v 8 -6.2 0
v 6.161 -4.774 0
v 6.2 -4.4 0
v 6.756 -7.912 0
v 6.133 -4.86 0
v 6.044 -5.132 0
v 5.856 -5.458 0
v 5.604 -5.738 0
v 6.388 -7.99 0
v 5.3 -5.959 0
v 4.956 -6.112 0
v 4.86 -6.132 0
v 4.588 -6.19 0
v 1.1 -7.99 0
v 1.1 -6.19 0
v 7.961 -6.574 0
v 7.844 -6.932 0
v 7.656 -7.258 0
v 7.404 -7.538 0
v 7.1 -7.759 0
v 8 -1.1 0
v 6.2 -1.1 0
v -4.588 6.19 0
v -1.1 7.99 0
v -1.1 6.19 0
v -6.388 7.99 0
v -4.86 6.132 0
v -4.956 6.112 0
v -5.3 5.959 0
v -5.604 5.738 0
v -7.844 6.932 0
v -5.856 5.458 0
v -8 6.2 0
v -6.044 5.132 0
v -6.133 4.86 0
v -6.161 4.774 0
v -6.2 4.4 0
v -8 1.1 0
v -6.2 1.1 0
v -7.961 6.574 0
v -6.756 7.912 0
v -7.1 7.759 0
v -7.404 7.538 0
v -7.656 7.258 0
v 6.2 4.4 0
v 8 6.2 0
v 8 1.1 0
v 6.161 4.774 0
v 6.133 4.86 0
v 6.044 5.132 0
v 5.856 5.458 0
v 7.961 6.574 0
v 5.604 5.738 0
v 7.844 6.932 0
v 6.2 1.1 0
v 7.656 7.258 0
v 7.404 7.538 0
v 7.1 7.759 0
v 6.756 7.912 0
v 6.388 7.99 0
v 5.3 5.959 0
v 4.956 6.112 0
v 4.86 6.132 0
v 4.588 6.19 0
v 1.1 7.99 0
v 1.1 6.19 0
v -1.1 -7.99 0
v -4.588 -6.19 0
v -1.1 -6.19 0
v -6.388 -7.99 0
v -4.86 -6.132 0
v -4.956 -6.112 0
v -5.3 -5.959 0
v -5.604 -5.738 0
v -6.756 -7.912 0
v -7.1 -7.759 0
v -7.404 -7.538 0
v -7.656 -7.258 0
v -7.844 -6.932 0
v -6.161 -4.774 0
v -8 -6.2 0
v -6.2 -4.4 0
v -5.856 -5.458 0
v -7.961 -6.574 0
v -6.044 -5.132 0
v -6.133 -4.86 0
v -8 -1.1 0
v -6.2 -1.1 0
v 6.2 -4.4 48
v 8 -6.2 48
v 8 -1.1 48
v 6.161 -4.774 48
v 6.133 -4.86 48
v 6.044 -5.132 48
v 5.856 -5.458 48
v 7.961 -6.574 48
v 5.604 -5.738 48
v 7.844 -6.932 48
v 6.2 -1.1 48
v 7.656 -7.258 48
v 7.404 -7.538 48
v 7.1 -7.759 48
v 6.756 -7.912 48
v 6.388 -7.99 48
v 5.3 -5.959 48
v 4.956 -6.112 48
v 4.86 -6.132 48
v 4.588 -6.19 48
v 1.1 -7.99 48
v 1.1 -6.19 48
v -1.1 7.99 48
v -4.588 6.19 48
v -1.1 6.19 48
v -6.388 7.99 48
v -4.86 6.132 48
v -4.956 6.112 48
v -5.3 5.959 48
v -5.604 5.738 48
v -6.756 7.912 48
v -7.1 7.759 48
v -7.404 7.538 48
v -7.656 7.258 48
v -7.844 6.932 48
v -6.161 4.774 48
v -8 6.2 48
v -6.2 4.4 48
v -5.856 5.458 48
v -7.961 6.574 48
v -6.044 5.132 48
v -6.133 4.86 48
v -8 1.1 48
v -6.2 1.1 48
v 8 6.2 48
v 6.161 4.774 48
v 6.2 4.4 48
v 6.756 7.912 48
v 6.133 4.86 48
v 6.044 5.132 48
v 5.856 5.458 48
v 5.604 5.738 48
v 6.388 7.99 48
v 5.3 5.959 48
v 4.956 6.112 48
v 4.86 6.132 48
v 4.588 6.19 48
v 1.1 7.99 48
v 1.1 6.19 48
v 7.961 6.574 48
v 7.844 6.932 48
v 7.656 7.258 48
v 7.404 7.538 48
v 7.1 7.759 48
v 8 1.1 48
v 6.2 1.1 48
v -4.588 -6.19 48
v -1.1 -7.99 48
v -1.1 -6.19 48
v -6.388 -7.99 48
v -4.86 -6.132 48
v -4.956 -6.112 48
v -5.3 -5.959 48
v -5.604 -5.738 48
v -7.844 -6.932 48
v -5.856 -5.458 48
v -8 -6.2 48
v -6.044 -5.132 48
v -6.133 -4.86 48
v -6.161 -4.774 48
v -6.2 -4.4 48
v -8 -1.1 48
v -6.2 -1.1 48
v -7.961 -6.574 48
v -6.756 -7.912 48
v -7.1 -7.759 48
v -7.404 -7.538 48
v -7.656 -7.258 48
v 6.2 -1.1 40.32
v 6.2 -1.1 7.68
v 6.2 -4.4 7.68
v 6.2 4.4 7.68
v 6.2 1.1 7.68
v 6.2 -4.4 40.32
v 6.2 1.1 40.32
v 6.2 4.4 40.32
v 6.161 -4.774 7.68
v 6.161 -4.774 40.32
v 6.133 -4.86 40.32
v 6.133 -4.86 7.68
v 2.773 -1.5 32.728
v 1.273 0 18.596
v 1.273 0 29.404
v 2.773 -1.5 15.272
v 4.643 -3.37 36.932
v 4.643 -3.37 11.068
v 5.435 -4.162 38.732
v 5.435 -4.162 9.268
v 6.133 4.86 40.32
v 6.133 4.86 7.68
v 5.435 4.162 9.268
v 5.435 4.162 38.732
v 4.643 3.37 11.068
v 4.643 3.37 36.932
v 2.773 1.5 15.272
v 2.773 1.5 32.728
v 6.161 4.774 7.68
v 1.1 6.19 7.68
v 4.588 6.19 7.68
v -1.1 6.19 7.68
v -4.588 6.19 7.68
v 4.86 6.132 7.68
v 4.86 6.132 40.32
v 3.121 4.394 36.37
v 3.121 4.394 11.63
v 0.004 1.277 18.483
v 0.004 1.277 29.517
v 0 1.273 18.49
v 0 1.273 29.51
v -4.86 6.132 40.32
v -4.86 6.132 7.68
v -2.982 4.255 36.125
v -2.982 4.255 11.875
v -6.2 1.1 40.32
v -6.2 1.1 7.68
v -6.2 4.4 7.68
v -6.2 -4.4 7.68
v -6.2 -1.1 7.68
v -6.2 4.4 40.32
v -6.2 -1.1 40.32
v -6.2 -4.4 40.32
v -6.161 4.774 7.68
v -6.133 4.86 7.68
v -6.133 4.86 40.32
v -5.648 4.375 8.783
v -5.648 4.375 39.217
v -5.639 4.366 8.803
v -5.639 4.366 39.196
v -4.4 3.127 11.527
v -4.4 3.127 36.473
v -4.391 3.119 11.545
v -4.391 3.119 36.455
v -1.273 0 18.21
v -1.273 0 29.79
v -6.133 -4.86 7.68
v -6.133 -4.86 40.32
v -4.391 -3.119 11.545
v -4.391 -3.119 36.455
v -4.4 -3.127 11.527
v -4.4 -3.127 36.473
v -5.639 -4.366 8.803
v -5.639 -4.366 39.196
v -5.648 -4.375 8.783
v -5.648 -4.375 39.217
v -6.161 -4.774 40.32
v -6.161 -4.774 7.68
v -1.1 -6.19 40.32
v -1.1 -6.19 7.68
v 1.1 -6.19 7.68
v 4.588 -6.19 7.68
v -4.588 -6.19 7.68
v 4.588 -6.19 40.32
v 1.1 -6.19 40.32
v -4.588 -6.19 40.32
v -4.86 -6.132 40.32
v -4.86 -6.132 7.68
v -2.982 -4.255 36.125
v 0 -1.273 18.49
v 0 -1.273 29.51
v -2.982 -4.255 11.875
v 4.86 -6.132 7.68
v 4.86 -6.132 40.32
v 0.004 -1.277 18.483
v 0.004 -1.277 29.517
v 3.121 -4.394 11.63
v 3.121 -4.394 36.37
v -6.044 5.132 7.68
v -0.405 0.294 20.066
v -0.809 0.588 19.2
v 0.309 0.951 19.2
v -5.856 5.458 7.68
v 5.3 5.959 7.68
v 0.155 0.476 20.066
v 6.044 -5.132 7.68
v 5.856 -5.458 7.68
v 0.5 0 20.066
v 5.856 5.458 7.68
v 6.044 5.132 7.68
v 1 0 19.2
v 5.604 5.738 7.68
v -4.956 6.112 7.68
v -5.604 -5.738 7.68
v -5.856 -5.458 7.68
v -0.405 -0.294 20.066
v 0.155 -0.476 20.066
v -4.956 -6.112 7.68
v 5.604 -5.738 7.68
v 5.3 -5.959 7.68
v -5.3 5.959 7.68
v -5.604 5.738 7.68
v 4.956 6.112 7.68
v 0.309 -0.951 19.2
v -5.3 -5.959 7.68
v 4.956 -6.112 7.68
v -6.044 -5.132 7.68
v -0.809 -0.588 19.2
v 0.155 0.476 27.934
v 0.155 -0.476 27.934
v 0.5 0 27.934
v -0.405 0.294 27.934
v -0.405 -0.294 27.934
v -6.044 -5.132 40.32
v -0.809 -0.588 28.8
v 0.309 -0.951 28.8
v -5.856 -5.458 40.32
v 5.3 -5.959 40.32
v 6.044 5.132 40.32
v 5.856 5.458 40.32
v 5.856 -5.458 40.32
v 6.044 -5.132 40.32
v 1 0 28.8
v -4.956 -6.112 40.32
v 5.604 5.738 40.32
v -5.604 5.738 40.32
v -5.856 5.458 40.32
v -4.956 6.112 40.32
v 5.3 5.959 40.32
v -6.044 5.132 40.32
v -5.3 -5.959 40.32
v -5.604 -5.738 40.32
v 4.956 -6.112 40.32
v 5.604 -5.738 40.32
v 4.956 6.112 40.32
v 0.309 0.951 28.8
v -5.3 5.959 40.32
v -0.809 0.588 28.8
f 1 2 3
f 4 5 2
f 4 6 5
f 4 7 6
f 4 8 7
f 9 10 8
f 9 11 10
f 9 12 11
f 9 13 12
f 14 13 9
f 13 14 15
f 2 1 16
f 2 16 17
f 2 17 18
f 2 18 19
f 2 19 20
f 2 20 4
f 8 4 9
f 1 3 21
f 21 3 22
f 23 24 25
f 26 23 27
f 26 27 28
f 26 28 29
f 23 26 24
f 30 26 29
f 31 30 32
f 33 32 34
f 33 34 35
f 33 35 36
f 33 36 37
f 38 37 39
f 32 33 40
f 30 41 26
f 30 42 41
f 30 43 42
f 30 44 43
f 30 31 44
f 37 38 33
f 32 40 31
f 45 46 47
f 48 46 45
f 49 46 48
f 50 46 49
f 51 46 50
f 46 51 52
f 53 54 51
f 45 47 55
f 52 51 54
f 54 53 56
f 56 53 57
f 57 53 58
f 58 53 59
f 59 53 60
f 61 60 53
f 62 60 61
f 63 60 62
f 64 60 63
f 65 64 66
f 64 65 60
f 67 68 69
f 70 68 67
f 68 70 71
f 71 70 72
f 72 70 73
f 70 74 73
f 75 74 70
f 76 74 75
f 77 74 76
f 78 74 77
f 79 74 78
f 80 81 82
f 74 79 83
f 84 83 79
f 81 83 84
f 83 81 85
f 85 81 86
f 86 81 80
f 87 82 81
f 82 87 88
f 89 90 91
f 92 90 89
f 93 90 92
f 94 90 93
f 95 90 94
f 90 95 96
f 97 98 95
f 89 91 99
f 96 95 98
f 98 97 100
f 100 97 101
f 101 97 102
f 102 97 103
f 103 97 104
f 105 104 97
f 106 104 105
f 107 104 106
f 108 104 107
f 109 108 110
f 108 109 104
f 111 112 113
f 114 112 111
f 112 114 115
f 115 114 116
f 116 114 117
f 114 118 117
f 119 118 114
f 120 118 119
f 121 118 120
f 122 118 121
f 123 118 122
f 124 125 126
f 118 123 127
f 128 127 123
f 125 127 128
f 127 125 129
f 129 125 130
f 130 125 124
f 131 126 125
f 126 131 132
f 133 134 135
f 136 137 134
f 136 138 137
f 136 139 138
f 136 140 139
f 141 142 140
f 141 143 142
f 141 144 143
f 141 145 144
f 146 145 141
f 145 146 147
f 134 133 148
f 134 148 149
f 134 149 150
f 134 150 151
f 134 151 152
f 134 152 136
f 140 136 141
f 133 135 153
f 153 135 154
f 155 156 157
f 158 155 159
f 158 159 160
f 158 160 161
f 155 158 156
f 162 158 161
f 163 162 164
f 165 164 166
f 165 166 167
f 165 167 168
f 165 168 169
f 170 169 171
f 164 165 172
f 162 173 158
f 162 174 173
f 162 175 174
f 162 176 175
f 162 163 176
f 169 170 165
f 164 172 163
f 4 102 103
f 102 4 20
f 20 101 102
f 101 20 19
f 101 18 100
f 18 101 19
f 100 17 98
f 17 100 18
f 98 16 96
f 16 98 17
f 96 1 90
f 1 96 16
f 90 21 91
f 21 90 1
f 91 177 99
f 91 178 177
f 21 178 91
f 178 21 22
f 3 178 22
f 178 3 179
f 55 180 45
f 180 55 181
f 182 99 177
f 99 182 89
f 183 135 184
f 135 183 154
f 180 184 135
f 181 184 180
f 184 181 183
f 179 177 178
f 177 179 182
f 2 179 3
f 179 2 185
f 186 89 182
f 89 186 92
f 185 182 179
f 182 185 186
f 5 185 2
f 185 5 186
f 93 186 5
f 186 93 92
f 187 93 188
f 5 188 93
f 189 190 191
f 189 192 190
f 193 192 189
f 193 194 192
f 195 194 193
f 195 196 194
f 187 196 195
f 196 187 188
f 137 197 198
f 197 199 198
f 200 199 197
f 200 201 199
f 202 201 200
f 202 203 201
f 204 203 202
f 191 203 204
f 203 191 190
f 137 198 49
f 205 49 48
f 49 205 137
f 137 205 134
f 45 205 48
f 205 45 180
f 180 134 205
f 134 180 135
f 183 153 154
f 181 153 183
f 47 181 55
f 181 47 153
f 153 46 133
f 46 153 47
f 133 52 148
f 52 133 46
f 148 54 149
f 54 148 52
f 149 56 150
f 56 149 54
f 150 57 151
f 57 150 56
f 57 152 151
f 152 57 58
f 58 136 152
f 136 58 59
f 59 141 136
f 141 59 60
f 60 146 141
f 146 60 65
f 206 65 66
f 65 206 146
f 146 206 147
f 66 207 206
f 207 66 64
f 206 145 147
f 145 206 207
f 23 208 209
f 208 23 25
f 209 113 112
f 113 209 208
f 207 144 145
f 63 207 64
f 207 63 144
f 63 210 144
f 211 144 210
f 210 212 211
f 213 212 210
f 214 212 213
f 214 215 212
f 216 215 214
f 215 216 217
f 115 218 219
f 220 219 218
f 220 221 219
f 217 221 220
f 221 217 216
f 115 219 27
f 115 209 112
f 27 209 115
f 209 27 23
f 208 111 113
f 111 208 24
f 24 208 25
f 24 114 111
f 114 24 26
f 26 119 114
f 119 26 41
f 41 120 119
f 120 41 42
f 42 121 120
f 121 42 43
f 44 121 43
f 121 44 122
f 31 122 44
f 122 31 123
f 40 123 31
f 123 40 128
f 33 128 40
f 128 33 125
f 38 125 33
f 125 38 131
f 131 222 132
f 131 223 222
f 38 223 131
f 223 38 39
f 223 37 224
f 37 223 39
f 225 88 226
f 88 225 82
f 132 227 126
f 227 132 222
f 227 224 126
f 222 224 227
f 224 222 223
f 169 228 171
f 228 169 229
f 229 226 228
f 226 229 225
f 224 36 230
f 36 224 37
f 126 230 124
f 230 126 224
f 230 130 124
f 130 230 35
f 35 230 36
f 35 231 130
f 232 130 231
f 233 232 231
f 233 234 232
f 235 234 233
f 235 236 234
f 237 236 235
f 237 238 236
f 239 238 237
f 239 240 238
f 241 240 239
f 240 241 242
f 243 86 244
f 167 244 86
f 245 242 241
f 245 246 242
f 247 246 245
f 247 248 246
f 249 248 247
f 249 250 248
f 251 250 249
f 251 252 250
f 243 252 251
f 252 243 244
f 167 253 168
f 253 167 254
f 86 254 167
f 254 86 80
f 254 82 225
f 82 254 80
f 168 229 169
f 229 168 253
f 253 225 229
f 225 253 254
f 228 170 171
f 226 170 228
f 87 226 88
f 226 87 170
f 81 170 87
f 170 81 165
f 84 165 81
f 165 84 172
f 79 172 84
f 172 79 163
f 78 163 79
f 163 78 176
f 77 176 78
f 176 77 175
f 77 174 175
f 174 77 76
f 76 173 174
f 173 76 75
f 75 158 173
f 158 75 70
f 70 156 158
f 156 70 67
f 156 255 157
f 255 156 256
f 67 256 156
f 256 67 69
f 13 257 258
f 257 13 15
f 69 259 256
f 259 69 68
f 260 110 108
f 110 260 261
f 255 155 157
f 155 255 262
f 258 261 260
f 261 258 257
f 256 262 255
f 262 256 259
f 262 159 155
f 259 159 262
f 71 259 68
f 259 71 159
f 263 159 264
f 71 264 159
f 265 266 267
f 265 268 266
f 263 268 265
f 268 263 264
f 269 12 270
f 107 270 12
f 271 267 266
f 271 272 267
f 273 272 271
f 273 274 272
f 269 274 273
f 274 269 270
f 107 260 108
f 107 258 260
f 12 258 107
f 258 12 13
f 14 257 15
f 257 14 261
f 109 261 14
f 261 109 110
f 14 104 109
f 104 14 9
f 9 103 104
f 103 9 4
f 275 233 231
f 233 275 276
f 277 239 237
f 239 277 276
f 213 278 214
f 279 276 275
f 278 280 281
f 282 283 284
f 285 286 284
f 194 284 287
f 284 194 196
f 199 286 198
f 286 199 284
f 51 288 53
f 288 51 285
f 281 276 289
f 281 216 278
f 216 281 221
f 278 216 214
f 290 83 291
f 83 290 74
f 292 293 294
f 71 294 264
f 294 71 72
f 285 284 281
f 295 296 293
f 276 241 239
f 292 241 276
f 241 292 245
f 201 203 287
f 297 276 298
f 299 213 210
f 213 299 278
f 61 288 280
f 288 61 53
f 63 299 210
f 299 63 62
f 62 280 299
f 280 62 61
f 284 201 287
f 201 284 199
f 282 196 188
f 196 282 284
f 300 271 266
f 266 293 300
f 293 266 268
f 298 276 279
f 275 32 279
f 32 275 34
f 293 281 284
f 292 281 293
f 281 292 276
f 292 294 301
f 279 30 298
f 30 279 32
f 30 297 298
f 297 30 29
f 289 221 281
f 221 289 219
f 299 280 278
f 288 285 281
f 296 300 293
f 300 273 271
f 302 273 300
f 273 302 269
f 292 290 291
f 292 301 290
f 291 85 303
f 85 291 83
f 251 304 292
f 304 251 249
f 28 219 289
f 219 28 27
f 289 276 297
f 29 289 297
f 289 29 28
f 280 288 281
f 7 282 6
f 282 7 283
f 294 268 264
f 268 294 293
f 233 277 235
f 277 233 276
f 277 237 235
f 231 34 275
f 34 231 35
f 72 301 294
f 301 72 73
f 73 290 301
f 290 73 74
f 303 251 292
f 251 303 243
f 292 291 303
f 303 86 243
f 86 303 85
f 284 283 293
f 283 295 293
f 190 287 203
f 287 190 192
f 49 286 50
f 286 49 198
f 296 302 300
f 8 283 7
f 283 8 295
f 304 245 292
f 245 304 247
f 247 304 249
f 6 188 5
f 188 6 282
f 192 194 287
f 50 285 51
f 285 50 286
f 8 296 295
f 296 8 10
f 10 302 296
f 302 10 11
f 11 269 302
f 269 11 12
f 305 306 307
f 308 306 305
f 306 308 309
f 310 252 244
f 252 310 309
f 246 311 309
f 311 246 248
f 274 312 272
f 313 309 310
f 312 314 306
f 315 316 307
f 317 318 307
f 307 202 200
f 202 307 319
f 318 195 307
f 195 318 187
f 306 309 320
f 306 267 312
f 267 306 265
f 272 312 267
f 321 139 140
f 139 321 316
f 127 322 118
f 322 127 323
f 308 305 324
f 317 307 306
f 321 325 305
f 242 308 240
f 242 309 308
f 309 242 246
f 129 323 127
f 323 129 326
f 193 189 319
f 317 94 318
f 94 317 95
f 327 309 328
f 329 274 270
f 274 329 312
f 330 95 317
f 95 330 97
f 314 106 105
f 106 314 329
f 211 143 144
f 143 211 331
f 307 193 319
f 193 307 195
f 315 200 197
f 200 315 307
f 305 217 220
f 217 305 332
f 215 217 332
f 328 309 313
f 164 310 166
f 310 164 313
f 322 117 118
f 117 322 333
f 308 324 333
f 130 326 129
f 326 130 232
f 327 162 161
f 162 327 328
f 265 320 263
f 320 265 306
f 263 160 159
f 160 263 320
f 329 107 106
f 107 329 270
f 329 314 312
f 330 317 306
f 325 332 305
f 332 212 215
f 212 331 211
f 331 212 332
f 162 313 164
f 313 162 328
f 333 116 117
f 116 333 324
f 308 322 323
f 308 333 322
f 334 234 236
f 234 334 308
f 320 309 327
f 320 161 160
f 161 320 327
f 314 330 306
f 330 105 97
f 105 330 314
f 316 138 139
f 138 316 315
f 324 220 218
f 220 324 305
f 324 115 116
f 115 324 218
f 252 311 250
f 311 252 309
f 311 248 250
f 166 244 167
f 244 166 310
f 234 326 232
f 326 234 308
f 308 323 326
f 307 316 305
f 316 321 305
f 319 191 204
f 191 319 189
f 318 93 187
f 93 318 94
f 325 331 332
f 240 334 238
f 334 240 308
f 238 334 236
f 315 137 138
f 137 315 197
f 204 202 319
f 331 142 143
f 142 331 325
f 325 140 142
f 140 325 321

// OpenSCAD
// Radio of the flange's head.
FLANGE_HEAD_RADIO = 2.1;

// Height of the flange's base.
FLANGE_BASE_HEIGHT = 2;

// Width of the flange's base.
FLANGE_BASE_WIDTH = 2.2;

// Wall's thickness.
WALL_THICKNESS=1.8;

// Width of the tile.
TILE_WIDTH=48;

// Height of the tile.
TILE_HEIGHT=16;

//
// 2D hollow rectangle with rounded corners.
// Params:
//   width -- Rectangle width.
//   height -- Rectangle height.
//   thickness -- Thickness of the rectangle walls and radio of the corners.
//
module __rounded_hollow_rectangle(width, height, thickness)
{
  // Create the external wall of the piece (rounded square shape).
  difference()
  {
    // External rounded rectangle.
    hull()
    {
      for (i=[-width/2 + thickness, 
              width/2 - thickness])
        for (j=[-height/2 + thickness, 
                height/2 - thickness])
          translate([i, j, 0])
            circle(r=thickness, $fn=30);
    }
    // Internal rounded rectangle.
    hull()
    {
      for (i=[-width/2 + 2*thickness, 
              width/2 -2*thickness])
        for (j=[-height/2 + 2*thickness, 
                height/2 - 2*thickness])
          translate([i, j, 0])
            circle(r=thickness, $fn=30);
    }
  }
}

//
// A wedge is a 3D shape with a cubed base and a pyramid sphaped top.
// Params:
//   base_l -- Length of the base cube.
//   base_w -- Width of the base cube.
//   base_h -- Height of the base cube.
//   wedge_h -- Wedge's total height.
//
module __wedge(base_l, base_w, base_h, wedge_h)
{
  hull()
  {
    translate([0,0, wedge_h])
      sphere(r=1, center=true);
    linear_extrude(base_h)
      __rounded_hollow_rectangle(base_l, base_w, WALL_THICKNESS);
  }
}

//
// Create the joint with sockets and then subtract 2 wedges on each extreme
// of the joint to make it lighter.
//
difference()
{
  // Joint with sockets for flanges.
  linear_extrude(TILE_WIDTH)
  {
    // Create external walls and the sockets for the flanges.
    difference()
    {
      union()
      {
        // External walls of the joint.
        __rounded_hollow_rectangle(TILE_HEIGHT, TILE_HEIGHT, WALL_THICKNESS);
        // Inner structure to keep together the walls.
        for (i = [45, 135])
        {
          rotate([0, 0, i])
            square([WALL_THICKNESS, 
                  sqrt(2) * TILE_HEIGHT - 2 * WALL_THICKNESS], center=true);
        }
      }

      // Let make the flanges' sockets.
      for (i = [0, 90, 180, 270])
      {
        rotate([0,0,i])
          translate([TILE_HEIGHT/2 - FLANGE_BASE_HEIGHT - FLANGE_HEAD_RADIO, 
                    0, 0])
            union()
            {
              translate([FLANGE_HEAD_RADIO + FLANGE_BASE_HEIGHT/2, 0, 0])
                square([FLANGE_BASE_HEIGHT+2, FLANGE_BASE_WIDTH], center=true);
            }
      }
    }
  }

  // Let subtract 2 wedges to make joint lighter.
  // The height of each wedge will be 40% of the joint height.
  // The wedge has a squared base and a pyramid sphaped top.
  // The base's height will be 40% of the total wedge's height.
  wedge_height= 2/5 * TILE_WIDTH;
  // First wedge.
  __wedge(TILE_HEIGHT-2*WALL_THICKNESS, TILE_HEIGHT-2*WALL_THICKNESS, 
          wedge_height * 2/5, wedge_height);
  // Second wedge.
  translate([0,0,TILE_WIDTH])
    rotate([180,0,0])
    __wedge(TILE_HEIGHT-2*WALL_THICKNESS, TILE_HEIGHT-2*WALL_THICKNESS, 
            wedge_height * 2/5, wedge_height);
}
